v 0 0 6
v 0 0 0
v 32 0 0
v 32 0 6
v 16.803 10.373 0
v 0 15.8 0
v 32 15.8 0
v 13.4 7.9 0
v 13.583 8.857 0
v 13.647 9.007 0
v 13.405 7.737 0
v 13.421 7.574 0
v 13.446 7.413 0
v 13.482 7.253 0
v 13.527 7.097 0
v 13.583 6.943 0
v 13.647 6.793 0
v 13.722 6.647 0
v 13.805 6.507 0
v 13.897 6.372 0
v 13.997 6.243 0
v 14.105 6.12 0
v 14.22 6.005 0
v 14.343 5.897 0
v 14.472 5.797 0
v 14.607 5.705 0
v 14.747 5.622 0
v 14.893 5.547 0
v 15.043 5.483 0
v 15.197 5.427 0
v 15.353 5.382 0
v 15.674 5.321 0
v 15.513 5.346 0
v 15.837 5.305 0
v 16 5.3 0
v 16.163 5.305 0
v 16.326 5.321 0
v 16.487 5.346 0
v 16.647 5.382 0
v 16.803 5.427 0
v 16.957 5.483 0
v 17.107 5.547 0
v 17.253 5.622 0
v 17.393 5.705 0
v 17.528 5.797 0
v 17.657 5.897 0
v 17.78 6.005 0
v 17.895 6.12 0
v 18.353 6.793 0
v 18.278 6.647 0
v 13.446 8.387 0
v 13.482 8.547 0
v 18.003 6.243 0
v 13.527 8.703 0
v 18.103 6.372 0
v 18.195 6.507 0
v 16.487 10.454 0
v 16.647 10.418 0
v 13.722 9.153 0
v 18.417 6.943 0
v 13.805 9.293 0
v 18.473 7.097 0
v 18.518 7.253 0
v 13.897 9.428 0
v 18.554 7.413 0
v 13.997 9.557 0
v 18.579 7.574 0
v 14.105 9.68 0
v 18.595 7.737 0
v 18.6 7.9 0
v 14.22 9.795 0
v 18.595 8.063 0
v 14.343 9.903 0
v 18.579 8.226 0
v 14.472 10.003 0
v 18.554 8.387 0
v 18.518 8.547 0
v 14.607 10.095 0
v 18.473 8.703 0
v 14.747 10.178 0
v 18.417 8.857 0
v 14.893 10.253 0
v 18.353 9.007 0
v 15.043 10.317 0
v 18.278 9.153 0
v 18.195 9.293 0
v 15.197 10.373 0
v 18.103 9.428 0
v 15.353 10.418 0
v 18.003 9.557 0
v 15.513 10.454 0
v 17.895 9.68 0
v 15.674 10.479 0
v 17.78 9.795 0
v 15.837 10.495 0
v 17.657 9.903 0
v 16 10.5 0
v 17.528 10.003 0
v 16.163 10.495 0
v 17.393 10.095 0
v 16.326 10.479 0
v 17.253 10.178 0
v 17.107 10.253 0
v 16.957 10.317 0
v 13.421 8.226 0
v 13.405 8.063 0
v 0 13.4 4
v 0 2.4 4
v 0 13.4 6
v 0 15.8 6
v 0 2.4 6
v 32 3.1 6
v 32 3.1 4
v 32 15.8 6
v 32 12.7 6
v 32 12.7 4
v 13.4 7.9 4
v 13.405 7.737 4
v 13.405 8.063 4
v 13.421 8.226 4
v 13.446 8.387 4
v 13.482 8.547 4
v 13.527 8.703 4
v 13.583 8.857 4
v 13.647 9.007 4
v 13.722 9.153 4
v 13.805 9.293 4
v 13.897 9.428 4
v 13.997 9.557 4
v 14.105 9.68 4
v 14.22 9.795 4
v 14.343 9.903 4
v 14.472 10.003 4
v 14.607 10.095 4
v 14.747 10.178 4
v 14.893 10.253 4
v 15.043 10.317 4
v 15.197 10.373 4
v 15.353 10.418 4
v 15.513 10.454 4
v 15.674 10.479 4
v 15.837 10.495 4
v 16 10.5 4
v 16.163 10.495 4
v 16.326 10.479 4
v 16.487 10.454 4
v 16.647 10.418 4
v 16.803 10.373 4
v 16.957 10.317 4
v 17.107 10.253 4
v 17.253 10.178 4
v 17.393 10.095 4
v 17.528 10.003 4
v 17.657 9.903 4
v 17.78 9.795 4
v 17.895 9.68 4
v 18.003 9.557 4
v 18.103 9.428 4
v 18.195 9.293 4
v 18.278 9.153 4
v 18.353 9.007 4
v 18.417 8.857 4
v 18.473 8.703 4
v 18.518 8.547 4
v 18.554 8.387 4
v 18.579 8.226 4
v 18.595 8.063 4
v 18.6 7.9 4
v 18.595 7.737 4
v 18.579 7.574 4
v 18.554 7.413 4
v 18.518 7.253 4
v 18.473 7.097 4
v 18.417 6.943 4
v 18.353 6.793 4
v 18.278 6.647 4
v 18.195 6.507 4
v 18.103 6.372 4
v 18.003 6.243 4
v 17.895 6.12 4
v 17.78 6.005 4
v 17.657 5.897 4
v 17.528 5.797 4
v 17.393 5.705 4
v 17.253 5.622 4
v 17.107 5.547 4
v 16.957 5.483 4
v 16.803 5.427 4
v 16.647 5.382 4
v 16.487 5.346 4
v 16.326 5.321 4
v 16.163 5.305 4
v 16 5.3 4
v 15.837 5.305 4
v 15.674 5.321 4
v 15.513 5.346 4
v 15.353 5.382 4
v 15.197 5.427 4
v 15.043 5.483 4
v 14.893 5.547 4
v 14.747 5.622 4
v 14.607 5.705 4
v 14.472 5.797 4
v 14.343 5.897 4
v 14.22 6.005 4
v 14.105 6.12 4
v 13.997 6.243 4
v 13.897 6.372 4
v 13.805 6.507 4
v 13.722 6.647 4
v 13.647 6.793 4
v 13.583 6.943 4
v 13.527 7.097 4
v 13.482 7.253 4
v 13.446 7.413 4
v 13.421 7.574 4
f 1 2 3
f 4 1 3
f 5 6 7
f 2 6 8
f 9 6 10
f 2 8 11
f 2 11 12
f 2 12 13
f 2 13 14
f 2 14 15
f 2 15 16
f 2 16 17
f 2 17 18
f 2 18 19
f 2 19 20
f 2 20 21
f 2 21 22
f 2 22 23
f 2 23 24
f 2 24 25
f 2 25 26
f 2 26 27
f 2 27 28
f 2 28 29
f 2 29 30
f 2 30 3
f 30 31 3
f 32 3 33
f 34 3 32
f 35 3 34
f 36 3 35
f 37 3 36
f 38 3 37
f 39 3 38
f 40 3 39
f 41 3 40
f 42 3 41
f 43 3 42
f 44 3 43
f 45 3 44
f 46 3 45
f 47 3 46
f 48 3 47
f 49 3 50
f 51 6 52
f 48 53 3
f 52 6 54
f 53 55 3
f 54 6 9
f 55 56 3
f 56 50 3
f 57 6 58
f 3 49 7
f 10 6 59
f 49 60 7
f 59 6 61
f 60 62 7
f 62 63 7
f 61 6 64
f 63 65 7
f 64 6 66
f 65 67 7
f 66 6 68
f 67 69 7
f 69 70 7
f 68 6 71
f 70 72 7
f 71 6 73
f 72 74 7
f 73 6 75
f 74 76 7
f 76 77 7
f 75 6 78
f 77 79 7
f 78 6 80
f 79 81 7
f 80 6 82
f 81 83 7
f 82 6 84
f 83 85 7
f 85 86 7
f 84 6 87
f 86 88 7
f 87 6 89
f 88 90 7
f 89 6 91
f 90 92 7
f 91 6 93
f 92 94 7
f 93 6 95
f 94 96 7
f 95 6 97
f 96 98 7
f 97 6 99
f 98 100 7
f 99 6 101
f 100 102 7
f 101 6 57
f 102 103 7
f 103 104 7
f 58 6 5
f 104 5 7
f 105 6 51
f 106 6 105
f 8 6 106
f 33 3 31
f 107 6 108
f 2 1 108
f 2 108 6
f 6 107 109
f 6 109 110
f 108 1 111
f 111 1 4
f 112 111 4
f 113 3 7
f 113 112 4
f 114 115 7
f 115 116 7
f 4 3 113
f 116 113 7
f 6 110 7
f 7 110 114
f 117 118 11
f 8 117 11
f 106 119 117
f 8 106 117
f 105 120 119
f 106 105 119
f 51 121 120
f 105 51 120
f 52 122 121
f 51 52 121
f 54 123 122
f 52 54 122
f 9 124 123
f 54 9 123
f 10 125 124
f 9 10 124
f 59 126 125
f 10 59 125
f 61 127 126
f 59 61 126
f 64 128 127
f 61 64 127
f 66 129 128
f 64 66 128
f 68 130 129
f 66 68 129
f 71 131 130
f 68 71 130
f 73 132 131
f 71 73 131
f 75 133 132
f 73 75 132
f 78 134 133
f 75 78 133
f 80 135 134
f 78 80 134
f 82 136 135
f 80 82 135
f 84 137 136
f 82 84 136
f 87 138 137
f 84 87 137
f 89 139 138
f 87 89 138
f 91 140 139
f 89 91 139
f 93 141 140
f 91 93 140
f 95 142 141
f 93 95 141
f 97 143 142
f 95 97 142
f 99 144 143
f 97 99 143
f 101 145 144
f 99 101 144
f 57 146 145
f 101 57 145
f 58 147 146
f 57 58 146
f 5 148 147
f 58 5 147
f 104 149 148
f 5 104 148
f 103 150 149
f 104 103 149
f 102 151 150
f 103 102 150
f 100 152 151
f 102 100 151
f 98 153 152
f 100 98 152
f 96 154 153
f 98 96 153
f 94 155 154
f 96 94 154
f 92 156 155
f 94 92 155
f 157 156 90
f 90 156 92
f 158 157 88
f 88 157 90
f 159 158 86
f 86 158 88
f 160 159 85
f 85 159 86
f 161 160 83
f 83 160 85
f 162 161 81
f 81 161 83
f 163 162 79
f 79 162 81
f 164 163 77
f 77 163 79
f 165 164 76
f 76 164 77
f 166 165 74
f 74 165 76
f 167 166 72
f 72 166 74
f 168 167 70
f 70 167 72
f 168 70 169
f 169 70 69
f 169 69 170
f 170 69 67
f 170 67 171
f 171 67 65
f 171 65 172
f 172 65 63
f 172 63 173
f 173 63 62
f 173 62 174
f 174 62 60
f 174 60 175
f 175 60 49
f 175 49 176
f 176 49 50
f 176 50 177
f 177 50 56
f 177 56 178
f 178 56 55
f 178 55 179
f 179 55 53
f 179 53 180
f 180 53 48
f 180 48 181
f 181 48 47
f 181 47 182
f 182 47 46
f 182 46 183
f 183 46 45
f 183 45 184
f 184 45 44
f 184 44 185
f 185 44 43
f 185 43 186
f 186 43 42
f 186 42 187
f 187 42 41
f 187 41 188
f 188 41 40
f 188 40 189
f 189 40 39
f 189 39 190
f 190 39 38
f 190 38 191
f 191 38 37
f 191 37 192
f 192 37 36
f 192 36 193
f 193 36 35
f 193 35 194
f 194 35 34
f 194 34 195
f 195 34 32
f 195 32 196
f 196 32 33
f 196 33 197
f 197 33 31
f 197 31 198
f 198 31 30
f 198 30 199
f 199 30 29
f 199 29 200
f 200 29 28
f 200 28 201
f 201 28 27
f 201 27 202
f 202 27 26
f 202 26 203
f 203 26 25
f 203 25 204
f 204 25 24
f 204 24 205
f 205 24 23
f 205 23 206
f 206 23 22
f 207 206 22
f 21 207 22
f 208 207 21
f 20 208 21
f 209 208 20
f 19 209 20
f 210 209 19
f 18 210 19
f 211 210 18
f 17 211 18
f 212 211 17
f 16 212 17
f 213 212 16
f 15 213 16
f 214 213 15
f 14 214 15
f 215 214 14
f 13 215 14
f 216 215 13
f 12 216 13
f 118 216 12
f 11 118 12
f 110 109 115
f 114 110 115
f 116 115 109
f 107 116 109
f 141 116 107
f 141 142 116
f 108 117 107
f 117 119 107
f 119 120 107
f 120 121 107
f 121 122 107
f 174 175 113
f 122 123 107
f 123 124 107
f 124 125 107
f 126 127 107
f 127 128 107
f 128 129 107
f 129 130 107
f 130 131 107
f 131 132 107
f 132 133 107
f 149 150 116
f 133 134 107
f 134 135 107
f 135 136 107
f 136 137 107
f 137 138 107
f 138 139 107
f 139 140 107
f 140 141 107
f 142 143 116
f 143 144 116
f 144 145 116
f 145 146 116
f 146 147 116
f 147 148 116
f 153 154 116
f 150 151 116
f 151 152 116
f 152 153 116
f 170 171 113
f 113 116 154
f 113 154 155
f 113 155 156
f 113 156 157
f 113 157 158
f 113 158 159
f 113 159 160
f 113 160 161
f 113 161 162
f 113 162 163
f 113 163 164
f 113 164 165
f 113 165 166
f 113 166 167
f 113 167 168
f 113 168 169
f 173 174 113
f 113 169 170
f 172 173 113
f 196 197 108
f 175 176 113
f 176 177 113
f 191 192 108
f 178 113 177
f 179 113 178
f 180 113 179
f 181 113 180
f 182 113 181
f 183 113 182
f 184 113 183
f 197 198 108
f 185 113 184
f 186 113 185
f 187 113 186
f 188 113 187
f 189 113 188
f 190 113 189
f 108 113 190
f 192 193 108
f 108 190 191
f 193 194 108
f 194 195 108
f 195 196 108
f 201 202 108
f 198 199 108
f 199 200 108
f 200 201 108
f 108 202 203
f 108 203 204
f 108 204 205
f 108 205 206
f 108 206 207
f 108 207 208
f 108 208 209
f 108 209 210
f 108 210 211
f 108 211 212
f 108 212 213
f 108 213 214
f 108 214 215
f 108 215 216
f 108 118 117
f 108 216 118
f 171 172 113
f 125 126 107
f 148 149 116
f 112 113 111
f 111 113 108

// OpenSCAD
$fn=100;

w=32;
h=16 - .2 ; //subtract .2 for sliding in
thickness=6.0;
slotdepth=2.0;
fanhb=11.0;
fanhs=9.6;

x1=0;    	y1=(h-fanhb)/2;

x2=w;			y2=(h-fanhs)/2;

x3=w;			y3=y2+fanhs;

x4=0;			y4=y1+fanhb;
servoarmouter();

module servoarmouter () {

 difference () {

   linear_extrude( height=thickness)
   color ( "blue") 
   polygon( [ [0,0],[w,0],[w,h],[0,h] ] , [   [0,1,2,3] ]);
  
   color("red")
   translate([0,0,thickness-slotdepth]) 
   linear_extrude(height=slotdepth)	
   polygon( [ [x1,y1],[x2,y2],[x3,y3],[x4,y4] ] , [   [0,1,2,3] ]);

	color ("red")
	translate([w/2,h/2,0])
	linear_extrude(height=thickness-slotdepth)
	circle(d=5.2);

  }

}
